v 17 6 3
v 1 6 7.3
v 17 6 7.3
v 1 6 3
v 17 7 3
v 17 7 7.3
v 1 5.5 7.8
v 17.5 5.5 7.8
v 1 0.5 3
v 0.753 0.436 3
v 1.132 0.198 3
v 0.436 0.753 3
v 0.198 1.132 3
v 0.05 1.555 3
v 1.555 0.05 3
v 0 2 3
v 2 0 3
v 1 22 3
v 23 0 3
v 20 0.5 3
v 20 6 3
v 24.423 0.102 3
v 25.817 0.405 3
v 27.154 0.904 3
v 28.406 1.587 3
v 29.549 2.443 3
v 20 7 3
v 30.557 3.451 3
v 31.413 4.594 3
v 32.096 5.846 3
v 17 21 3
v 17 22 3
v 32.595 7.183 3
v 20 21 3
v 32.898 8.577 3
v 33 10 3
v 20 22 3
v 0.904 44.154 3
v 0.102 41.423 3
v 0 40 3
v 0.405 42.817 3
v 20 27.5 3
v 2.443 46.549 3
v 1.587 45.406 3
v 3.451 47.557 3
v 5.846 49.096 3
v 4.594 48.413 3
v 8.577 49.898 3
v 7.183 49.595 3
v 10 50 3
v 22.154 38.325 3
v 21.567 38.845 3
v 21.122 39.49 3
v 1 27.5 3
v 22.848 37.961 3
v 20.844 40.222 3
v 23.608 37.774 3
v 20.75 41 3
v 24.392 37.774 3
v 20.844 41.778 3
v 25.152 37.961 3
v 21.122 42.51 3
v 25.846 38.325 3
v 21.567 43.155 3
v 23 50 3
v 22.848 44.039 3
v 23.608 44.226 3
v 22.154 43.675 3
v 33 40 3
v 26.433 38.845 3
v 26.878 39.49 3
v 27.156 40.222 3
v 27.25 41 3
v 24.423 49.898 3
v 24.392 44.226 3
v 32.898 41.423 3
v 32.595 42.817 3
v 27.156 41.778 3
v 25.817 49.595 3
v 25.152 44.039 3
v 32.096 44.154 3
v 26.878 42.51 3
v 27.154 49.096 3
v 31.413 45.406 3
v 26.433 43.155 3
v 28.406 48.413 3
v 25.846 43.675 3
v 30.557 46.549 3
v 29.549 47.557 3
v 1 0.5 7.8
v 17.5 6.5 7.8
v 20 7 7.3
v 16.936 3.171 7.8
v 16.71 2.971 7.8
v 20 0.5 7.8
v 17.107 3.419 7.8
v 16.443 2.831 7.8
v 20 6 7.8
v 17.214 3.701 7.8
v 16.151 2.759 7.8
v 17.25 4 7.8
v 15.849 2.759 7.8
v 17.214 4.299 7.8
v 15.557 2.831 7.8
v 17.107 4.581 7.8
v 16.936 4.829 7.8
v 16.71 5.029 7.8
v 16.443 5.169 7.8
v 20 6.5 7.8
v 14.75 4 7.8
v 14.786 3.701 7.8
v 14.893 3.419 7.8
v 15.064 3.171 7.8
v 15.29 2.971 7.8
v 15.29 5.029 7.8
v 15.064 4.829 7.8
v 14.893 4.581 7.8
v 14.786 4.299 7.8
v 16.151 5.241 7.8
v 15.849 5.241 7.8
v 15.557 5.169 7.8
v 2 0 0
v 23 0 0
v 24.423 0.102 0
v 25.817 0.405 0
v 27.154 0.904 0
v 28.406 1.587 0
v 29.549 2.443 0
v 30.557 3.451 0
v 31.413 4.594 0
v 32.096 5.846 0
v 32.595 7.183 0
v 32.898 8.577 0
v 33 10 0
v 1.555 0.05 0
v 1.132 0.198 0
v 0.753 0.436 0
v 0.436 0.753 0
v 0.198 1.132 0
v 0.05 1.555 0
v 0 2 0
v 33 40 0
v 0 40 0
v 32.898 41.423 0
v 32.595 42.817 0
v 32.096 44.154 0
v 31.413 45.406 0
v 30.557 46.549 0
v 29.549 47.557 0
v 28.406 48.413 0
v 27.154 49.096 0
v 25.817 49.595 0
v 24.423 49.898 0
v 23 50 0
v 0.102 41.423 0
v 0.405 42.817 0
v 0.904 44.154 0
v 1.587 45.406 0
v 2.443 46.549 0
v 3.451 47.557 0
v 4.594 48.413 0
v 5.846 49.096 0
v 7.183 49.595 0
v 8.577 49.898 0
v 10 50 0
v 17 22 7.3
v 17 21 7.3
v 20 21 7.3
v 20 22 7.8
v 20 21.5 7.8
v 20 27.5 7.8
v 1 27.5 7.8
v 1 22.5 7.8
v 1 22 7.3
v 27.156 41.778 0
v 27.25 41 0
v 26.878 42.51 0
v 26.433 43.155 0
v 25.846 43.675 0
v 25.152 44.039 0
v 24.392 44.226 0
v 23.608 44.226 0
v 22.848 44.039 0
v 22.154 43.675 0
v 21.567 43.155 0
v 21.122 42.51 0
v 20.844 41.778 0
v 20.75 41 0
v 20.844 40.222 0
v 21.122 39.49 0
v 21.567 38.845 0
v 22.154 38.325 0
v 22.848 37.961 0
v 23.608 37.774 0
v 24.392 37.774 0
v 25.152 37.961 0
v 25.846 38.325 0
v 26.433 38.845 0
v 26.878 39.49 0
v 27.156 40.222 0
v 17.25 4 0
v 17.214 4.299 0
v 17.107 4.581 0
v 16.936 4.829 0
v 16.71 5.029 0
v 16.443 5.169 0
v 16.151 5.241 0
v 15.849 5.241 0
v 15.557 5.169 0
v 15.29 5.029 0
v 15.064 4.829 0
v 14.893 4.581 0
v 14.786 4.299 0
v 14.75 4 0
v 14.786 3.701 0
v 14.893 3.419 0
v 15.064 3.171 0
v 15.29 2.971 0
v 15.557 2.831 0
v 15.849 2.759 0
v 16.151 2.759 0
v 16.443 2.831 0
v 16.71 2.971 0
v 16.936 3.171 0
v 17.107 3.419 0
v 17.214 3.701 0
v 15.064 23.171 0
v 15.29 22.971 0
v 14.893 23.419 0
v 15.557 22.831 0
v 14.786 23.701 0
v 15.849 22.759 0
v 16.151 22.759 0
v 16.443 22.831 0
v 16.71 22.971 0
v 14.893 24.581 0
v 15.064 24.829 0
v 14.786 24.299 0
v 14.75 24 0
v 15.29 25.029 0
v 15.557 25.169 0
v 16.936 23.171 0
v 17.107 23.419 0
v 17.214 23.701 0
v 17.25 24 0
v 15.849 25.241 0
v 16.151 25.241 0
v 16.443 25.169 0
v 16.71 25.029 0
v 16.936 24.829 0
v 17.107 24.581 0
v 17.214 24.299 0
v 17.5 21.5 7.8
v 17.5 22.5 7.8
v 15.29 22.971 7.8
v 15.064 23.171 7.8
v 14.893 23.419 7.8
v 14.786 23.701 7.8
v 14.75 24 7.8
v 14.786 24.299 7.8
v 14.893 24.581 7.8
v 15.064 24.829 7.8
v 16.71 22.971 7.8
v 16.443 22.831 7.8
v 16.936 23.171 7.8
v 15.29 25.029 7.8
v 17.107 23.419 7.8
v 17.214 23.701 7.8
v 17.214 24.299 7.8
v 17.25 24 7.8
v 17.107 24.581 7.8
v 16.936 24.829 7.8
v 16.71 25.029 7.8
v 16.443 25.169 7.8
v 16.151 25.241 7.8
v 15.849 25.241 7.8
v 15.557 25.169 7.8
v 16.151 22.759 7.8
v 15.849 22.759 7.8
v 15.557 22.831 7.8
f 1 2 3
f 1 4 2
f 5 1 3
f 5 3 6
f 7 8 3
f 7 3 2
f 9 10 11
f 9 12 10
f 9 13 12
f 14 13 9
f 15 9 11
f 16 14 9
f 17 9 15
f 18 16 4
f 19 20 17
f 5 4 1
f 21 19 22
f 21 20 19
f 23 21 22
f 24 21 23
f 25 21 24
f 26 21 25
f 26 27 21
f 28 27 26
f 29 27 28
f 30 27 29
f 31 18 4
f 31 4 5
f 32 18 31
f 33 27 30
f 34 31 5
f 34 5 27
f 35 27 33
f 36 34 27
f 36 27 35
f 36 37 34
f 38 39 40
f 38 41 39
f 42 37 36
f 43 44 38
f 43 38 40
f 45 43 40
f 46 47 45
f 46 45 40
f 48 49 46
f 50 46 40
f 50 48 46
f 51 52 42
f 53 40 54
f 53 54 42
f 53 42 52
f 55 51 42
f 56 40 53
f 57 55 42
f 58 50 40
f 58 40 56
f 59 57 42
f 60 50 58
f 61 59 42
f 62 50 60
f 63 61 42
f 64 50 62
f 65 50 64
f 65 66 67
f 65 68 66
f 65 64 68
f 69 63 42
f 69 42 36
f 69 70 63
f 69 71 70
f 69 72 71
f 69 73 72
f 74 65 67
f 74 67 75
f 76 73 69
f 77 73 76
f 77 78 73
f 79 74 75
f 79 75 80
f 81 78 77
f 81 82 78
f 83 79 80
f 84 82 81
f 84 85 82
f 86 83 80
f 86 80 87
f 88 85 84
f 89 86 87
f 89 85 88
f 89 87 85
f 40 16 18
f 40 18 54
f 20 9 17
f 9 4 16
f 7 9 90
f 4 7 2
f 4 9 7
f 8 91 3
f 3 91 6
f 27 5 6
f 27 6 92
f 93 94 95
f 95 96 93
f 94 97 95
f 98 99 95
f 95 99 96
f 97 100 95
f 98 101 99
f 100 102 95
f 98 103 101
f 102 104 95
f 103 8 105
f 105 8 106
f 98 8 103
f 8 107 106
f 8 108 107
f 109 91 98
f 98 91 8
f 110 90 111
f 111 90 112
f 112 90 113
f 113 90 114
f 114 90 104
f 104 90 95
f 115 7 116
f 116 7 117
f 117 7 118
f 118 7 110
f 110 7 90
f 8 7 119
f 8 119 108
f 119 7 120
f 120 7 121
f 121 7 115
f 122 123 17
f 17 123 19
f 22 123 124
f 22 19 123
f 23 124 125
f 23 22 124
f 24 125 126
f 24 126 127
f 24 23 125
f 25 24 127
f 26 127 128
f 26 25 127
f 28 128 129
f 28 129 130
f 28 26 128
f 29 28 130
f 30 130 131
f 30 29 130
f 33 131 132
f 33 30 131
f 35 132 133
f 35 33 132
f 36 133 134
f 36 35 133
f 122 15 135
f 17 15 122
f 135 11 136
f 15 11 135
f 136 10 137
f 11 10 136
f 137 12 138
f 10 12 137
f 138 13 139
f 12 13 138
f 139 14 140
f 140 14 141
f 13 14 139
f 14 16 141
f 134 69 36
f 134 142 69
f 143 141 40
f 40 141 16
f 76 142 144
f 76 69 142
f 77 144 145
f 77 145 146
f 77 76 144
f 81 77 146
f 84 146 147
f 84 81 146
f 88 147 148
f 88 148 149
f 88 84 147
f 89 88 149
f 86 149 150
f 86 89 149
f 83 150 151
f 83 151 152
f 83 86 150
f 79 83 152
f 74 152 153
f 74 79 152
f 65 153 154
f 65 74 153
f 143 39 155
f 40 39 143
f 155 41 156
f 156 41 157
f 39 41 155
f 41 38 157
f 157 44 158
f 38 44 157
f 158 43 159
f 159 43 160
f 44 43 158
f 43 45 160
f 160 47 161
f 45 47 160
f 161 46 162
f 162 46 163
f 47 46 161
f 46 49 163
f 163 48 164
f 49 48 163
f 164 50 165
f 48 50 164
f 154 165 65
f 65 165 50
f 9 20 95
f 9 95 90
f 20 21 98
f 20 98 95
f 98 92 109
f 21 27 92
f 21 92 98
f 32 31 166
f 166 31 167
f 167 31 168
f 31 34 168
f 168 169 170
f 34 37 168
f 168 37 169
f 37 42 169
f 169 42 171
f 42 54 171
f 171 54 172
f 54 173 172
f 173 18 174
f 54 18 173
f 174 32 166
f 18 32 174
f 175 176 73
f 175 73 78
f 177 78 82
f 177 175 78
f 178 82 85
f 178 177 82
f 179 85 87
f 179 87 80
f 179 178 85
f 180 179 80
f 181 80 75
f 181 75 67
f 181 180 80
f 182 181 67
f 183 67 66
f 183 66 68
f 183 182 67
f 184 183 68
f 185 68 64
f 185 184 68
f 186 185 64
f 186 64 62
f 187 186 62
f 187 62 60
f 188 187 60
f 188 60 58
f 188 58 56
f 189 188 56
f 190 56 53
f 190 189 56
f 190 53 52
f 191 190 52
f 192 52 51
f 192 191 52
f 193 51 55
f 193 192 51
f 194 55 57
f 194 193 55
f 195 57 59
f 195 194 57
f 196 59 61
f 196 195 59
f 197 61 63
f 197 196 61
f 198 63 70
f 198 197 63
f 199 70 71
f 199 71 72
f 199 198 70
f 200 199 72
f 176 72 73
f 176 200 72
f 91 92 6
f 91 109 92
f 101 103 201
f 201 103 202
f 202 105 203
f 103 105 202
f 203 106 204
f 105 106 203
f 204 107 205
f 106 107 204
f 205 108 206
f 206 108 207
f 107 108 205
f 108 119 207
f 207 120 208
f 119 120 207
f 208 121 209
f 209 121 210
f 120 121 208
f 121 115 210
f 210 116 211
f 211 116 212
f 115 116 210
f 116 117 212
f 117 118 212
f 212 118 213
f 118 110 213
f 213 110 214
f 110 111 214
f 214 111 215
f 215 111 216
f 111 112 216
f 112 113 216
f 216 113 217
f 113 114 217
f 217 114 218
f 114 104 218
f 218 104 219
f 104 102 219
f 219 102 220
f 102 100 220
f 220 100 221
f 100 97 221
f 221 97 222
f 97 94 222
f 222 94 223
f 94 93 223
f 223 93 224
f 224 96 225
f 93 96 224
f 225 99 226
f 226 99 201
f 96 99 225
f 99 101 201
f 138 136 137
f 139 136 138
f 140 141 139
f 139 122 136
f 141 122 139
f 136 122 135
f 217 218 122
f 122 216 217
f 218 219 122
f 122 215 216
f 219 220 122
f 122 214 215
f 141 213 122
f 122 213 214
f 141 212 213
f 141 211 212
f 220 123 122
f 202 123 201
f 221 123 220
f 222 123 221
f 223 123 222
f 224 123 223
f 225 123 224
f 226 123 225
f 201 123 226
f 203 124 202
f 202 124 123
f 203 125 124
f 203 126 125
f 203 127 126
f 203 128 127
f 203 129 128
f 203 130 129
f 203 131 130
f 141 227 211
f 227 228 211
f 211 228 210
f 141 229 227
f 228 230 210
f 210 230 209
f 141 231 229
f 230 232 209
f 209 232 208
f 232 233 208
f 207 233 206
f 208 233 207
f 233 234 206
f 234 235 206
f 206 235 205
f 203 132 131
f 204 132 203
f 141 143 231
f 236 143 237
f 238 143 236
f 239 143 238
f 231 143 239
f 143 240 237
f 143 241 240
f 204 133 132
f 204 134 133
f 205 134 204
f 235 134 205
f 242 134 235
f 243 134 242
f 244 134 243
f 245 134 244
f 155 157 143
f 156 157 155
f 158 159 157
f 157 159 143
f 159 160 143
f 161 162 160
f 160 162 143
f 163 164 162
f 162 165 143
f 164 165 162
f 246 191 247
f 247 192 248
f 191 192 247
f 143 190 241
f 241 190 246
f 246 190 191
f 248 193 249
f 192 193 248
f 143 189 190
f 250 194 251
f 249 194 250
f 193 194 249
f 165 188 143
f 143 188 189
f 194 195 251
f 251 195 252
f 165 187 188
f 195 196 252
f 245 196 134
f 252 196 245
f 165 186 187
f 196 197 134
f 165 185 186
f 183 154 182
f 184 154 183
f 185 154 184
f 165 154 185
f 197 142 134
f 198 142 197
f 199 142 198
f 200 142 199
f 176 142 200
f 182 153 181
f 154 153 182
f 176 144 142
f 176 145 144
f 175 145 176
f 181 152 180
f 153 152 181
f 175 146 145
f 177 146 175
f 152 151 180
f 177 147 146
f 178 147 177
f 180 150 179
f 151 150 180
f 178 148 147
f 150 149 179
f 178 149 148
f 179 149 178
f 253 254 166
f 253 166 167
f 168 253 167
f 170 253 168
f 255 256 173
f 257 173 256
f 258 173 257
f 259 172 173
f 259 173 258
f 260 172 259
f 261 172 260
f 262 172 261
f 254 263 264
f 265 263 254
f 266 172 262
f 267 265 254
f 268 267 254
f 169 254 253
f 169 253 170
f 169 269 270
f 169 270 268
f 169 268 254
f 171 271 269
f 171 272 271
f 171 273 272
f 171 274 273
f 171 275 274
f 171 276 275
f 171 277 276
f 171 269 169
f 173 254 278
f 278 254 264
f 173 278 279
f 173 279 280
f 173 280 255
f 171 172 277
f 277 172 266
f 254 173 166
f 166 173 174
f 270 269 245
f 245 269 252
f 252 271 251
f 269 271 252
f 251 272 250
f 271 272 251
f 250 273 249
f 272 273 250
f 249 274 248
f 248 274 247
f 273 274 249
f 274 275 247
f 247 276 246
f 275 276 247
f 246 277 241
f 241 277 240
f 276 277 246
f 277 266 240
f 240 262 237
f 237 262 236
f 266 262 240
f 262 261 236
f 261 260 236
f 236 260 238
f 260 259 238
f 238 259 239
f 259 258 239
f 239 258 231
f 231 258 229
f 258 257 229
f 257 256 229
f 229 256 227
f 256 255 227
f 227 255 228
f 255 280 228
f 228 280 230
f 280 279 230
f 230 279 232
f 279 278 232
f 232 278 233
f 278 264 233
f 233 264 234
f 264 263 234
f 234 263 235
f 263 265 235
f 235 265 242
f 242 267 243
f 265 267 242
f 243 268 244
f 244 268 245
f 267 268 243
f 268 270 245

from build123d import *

# Parameters (mm, degrees)
SKETCH_W     = 33
SKETCH_H     = 50
SKETCH_R     = 3.25
PAD_DEPTH    = 3
FILLET_R     = 2
FILLET001_R  = 10
PAD001_DEPTH = 4.8
SKETCH002_R  = 1.25
POCKET_DEPTH = 8.001
CHAMFER_SIZE = 0.5


with BuildPart() as part:
    # Sketch → Pad (new body)
    with BuildSketch(Plane.XY):
        with Locations((16.5, 25)):
            Rectangle(SKETCH_W, SKETCH_H)
        with Locations((24, 41)):
            Circle(SKETCH_R, mode=Mode.SUBTRACT)
    extrude(amount=PAD_DEPTH)

    # Fillet
    fillet_edges = [part.edges().sort_by_distance(p)[0] for p in [
        (0, 0, 1.5),
    ]]
    fillet(fillet_edges, radius=FILLET_R)

    # Fillet001
    fillet001_edges = [part.edges().sort_by_distance(p)[0] for p in [
        (33, 0, 1.5),
        (0, 50, 1.5),
        (33, 50, 1.5),
    ]]
    fillet(fillet001_edges, radius=FILLET001_R)

    # Sketch001 → Pad001 (join)
    with BuildSketch(Plane.XY.offset(3)):
        Polygon((20, 22), (20, 27.5), (1, 27.5), (1, 22), (17, 22), (17, 21), (20, 21), align=None)
        Polygon((1, 0.5), (1, 6), (17, 6), (17, 7), (20, 7), (20, 6), (20, 0.5), align=None)
    extrude(amount=PAD001_DEPTH)

    # Sketch002 → Pocket (cut, through all)
    with BuildSketch(Plane.XY.offset(8)):
        with Locations((16, 24)):
            Circle(SKETCH002_R)
        with Locations((16, 4)):
            Circle(SKETCH002_R)
    extrude(amount=-POCKET_DEPTH, mode=Mode.SUBTRACT)

    # Chamfer
    chamfer_edges = [part.edges().sort_by_distance(p)[0] for p in [
        (9, 22, 7.8),
        (9, 6, 7.8),
        (17, 21.5, 7.8),
        (17, 6.5, 7.8),
        (18.5, 7, 7.8),
        (18.5, 21, 7.8),
    ]]
    chamfer(chamfer_edges, length=CHAMFER_SIZE)


solid = part.part
